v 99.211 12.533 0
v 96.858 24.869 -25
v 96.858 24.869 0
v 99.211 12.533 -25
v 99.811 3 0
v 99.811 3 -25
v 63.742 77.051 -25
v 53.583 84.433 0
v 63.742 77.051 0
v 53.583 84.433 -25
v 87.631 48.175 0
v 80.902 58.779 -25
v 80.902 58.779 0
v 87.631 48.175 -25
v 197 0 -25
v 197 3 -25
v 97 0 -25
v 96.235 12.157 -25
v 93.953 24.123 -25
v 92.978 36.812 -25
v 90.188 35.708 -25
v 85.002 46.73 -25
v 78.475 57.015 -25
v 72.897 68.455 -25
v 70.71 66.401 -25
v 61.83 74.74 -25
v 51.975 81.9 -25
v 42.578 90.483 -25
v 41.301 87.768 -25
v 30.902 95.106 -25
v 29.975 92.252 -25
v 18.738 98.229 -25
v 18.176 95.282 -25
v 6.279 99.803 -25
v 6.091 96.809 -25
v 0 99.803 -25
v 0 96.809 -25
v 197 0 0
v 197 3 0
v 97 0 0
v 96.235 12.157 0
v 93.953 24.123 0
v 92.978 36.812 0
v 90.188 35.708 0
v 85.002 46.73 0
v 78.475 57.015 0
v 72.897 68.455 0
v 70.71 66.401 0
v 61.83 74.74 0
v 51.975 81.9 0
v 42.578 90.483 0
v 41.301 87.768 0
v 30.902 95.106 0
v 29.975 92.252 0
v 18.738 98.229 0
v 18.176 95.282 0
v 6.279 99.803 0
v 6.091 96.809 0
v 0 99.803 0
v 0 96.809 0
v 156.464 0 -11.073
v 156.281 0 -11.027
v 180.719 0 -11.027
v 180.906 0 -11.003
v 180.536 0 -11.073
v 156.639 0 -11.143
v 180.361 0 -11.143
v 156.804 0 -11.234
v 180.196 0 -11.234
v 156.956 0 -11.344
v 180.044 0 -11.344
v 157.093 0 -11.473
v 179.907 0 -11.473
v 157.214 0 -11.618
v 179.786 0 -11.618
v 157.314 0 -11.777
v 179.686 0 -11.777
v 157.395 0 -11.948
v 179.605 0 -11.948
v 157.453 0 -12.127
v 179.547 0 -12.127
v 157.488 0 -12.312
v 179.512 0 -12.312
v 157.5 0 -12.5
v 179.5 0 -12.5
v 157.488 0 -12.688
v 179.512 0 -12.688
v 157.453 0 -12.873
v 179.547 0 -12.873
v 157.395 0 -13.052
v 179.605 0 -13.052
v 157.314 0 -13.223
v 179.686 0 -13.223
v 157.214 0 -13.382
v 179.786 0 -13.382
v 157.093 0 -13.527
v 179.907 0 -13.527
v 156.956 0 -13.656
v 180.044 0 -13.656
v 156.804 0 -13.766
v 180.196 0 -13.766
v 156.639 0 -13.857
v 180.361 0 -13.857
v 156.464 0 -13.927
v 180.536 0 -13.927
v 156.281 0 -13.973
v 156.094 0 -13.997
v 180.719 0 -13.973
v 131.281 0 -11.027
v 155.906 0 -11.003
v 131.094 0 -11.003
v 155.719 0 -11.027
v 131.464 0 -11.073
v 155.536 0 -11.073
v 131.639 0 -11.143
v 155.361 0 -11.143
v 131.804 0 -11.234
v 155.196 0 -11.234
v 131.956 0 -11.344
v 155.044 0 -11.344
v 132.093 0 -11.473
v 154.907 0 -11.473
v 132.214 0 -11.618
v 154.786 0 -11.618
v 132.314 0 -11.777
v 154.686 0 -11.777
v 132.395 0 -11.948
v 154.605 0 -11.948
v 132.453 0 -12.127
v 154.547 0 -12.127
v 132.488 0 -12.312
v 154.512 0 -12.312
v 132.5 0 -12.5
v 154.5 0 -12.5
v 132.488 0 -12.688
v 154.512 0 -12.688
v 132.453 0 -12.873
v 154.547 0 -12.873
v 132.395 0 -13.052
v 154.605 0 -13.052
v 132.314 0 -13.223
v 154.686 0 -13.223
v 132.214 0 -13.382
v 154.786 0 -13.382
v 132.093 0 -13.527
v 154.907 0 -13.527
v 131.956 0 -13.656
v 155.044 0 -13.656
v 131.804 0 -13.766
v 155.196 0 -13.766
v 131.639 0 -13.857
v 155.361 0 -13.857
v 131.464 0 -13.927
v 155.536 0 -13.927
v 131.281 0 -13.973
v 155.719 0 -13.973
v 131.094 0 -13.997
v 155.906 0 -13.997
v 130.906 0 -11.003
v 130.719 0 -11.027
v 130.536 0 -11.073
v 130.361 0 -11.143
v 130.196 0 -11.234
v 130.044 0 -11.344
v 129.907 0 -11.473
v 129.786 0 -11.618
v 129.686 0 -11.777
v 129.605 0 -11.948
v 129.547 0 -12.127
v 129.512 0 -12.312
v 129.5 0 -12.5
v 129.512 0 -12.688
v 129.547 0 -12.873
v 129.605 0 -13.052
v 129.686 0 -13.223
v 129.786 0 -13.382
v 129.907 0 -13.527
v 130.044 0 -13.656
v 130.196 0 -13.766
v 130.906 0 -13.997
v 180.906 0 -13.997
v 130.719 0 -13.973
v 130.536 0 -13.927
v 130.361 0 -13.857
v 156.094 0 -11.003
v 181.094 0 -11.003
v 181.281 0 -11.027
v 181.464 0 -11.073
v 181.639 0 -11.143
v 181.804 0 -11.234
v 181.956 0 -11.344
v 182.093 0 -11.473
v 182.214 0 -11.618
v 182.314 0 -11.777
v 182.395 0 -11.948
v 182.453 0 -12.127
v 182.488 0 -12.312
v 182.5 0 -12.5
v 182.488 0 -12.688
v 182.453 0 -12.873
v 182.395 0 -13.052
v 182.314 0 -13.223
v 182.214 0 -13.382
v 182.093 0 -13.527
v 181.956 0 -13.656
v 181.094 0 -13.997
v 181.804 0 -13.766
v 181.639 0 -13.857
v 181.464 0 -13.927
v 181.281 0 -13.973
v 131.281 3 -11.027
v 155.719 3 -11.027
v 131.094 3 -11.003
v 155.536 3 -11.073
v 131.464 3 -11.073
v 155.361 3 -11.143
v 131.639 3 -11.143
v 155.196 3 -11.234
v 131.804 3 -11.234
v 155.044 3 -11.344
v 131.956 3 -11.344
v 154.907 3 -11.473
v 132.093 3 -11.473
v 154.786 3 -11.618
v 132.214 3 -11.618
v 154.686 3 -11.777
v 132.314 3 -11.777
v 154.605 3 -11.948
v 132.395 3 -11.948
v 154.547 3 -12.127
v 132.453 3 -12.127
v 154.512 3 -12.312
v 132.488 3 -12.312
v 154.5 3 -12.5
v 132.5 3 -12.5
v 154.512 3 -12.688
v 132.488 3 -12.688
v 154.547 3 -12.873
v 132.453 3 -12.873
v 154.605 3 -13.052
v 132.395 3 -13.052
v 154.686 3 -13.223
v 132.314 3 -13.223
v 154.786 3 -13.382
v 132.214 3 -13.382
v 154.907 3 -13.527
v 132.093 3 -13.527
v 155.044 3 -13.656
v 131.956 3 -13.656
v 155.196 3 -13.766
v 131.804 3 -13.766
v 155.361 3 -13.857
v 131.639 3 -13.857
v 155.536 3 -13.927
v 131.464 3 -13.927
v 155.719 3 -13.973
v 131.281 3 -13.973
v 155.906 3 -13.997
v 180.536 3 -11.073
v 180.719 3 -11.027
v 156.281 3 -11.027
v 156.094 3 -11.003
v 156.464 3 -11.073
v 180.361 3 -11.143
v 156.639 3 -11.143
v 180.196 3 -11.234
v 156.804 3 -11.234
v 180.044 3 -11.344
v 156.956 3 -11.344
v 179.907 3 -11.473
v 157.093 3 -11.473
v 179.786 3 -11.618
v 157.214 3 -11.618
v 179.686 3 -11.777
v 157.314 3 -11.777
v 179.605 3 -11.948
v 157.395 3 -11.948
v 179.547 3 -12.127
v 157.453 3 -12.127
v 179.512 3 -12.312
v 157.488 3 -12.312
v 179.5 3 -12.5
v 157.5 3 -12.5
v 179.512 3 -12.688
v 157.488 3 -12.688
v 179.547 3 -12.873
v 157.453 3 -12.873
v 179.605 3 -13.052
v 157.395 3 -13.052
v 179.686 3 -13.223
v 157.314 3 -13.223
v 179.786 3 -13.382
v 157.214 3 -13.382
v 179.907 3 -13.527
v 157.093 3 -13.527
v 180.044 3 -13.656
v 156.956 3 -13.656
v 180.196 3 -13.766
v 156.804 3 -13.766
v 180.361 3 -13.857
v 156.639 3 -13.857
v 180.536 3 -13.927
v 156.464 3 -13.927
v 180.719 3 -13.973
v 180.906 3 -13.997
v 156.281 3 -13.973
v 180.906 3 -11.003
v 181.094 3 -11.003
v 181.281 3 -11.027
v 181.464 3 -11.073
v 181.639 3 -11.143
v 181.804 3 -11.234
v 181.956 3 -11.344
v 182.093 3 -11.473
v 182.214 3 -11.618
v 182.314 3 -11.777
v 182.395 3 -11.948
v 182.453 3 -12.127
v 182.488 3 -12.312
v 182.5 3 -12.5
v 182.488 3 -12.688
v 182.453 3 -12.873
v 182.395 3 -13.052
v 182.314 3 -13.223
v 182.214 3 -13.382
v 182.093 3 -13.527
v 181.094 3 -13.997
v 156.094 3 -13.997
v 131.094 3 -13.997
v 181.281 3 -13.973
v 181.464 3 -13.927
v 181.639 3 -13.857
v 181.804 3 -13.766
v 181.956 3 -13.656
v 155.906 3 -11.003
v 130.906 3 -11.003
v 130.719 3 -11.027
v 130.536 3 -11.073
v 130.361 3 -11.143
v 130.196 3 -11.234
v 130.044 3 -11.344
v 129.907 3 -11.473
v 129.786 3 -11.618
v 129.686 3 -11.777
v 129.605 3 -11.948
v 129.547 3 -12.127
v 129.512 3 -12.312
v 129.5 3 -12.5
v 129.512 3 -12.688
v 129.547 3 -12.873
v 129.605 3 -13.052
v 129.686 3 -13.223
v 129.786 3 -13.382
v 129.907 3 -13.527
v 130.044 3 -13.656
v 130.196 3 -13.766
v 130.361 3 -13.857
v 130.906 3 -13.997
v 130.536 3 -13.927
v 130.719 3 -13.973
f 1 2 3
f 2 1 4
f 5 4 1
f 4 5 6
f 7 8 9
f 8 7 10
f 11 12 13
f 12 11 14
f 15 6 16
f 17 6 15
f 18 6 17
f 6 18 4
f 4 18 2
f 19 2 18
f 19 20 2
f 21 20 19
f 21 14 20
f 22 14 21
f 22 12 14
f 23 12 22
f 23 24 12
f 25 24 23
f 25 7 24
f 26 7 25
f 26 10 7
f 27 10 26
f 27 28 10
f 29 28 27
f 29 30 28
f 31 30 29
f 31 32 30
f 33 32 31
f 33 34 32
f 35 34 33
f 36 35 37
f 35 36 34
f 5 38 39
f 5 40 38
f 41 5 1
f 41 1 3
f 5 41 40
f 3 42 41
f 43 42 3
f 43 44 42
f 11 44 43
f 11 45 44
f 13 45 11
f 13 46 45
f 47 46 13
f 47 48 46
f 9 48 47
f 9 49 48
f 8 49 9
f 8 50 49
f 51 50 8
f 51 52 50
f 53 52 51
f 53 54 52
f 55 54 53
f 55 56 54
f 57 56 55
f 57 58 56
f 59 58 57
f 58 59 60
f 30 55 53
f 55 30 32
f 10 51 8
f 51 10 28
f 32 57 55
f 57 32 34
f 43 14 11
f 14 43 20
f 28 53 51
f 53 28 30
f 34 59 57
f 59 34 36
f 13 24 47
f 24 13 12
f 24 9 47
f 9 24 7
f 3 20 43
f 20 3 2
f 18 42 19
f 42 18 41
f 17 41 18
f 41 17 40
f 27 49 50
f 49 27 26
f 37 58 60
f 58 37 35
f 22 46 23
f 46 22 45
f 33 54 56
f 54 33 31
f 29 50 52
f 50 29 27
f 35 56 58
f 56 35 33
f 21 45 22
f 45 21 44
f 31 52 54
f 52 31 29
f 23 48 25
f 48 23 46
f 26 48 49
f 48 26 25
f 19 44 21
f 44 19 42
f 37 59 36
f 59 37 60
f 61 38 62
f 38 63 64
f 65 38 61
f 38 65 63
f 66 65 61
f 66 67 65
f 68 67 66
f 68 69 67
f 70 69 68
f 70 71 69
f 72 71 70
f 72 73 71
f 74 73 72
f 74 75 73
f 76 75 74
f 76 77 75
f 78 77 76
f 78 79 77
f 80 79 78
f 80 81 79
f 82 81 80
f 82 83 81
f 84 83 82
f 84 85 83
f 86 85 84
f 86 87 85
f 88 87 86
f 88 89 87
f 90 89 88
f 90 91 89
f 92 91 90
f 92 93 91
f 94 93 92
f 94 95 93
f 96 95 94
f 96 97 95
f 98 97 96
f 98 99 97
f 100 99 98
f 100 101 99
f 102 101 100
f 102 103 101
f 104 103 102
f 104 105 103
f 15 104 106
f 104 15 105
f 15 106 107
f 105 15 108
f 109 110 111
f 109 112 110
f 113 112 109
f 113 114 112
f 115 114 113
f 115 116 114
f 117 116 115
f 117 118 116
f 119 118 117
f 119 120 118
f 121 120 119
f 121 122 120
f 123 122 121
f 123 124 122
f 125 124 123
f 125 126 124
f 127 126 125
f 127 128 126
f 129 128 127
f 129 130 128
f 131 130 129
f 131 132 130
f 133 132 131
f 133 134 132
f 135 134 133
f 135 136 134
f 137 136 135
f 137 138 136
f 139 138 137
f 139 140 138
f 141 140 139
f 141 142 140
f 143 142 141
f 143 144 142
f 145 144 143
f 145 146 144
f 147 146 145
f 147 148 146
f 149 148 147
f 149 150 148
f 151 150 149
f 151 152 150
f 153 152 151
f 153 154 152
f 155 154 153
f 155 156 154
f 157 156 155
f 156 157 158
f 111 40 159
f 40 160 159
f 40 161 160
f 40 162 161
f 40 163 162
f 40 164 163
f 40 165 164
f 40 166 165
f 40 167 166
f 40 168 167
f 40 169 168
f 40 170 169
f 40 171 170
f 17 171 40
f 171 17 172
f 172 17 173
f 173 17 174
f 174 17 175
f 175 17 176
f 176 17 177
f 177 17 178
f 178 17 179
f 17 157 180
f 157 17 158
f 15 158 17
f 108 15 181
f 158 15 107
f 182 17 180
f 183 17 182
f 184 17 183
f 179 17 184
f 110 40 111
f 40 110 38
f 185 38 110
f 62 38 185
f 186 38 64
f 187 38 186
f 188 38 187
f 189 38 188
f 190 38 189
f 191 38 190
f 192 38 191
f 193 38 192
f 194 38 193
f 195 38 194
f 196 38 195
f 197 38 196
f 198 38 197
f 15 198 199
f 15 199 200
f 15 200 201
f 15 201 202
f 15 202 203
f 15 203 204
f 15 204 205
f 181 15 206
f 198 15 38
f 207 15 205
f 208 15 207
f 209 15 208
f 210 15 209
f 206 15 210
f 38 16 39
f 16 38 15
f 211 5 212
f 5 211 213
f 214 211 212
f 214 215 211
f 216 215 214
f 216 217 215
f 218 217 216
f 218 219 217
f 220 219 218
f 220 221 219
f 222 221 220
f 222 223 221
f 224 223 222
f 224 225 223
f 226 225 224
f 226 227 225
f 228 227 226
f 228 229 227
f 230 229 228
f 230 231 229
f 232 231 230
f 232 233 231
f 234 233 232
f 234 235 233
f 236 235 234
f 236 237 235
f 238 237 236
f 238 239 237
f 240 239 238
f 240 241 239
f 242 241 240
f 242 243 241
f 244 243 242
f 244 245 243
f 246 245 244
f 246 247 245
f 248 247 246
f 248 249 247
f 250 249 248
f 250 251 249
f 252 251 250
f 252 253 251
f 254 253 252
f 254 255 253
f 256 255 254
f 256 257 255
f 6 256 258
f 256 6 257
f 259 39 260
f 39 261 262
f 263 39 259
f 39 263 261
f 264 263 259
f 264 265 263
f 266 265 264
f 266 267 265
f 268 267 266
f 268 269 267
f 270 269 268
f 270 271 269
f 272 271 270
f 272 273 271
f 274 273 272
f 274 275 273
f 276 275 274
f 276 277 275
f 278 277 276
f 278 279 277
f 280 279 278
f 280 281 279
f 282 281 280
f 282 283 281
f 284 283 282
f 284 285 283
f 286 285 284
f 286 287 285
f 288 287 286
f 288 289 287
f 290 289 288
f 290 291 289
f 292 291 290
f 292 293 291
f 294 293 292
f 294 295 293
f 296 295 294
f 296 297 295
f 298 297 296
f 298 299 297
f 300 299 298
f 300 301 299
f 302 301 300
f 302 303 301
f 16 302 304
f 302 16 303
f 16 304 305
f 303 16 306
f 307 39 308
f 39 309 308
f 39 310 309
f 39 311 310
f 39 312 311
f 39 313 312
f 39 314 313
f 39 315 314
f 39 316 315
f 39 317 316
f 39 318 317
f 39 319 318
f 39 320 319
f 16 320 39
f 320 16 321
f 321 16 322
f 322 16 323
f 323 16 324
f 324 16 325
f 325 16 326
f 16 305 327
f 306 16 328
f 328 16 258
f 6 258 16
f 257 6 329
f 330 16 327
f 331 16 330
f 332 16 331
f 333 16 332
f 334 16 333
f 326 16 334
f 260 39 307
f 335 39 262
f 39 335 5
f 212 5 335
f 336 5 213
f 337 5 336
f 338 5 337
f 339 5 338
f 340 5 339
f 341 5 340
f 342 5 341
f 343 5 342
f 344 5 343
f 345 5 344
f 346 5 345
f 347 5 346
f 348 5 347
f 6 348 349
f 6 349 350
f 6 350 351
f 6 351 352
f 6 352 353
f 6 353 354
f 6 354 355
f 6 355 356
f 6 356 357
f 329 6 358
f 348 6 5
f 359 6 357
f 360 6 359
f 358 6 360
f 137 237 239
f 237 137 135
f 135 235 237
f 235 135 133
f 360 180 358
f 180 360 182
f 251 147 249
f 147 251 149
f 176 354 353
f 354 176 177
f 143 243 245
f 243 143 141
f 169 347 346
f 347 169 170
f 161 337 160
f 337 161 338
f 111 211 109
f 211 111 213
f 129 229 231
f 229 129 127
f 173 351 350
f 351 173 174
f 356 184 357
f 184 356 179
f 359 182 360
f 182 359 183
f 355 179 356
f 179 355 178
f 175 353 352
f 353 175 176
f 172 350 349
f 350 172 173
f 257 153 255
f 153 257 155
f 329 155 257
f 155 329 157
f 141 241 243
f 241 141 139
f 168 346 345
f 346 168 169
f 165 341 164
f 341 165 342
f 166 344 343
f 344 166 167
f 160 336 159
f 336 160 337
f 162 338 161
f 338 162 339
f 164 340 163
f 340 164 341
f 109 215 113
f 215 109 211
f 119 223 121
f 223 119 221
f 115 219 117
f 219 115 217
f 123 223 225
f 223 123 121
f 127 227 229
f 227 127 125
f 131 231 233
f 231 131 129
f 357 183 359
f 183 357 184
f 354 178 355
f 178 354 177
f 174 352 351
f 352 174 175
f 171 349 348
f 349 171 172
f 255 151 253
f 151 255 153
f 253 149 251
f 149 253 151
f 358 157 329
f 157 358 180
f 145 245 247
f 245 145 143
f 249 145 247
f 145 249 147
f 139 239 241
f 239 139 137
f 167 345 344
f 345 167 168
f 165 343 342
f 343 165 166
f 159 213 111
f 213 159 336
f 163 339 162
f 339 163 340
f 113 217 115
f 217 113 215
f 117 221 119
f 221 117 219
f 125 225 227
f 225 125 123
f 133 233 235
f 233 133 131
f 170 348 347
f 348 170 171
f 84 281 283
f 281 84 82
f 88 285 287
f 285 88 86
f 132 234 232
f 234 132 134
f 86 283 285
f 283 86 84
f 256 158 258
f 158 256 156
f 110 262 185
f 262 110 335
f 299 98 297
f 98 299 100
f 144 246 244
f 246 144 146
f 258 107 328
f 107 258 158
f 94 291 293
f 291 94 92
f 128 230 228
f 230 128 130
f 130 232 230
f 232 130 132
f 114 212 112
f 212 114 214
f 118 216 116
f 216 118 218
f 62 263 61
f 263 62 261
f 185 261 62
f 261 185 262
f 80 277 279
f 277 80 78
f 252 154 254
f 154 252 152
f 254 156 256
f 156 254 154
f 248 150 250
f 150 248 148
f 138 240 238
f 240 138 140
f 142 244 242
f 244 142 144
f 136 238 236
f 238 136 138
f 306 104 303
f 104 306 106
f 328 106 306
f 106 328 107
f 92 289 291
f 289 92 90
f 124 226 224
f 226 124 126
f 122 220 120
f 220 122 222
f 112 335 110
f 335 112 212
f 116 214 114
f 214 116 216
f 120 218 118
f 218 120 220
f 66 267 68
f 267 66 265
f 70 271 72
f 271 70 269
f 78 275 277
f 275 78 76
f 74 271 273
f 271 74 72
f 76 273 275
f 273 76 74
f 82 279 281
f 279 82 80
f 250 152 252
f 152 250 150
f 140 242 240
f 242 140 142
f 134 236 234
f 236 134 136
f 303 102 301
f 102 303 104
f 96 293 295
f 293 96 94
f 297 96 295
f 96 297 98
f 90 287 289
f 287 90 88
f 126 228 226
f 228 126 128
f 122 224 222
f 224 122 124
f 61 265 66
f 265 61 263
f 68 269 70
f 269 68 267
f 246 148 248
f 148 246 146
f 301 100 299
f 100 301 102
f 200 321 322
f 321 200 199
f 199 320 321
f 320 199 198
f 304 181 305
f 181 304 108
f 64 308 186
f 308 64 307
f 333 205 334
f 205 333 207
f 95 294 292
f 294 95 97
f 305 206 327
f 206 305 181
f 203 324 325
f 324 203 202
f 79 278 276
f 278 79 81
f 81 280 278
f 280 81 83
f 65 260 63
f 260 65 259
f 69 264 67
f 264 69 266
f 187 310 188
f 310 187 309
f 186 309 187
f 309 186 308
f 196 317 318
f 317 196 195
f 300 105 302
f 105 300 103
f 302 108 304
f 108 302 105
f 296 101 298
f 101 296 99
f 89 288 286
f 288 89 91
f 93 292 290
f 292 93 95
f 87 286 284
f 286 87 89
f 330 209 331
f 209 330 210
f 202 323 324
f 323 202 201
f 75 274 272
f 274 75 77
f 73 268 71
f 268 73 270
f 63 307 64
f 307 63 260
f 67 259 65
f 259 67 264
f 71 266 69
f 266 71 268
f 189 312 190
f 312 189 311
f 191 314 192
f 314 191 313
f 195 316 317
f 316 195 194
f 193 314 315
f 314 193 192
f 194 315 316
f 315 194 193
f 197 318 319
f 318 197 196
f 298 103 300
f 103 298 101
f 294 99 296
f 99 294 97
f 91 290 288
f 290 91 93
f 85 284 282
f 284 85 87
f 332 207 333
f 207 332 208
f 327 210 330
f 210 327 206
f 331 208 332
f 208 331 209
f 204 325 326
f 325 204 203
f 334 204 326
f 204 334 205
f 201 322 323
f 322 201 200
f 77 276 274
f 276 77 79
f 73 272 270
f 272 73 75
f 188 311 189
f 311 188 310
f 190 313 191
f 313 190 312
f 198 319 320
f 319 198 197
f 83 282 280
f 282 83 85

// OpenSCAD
//Pool holder thing to be used with a blow up pool and this thing https://www.thingiverse.com/thing:2268960

//By Jordan Knight under MIT


braceRadius=100;
circleThickness=25;
supportHeight=100;
screwHoldSpacing=25;
circleBulk=3;
braceThickness=3;

screwSpacing=25;
screwStart=screwSpacing + circleBulk;

m3Radius=1.5;

module braceCircle(){
    $fn=50;
    difference(){
        
            
            translate([0, 0, -circleThickness])            
                linear_extrude(height = circleThickness){
                    circle(braceRadius);        
                }
            translate([0, 0, -circleThickness])
                linear_extrude(height = circleThickness){
                    circle(braceRadius - circleBulk); //inner hole
                }
     
        
        
        
        translate([-braceRadius, 0, -circleThickness])
            cube([braceRadius,braceRadius,circleThickness]);
        translate([-braceRadius, -braceRadius, -circleThickness])
            cube([braceRadius,braceRadius,circleThickness]);
        translate([0, -braceRadius, -circleThickness])
            cube([braceRadius,braceRadius,circleThickness]);
    }
    
    
}

module braceSupport(){
    difference(){
        translate([braceRadius - circleBulk, 0,-circleThickness])
            cube([supportHeight,braceThickness,circleThickness]);
        screw(0);
        screw(1);
        screw(2);
    }
    
}

module screw(holeIndex = 0){
    $fn=50;
    holeCentre = screwStart + (holeIndex * screwSpacing);
    holeBraceOffset = holeCentre + braceRadius + circleBulk;
    //move it to the brace bracketOffset
    //holeCentre=holeCentre + braceRadius - circleBulk;

    translate([holeBraceOffset, 0, -circleThickness/2])
        rotate([-90, 0, 0])
            linear_extrude(height = braceThickness){
                circle(m3Radius);
            }

}

braceCircle();
braceSupport();
